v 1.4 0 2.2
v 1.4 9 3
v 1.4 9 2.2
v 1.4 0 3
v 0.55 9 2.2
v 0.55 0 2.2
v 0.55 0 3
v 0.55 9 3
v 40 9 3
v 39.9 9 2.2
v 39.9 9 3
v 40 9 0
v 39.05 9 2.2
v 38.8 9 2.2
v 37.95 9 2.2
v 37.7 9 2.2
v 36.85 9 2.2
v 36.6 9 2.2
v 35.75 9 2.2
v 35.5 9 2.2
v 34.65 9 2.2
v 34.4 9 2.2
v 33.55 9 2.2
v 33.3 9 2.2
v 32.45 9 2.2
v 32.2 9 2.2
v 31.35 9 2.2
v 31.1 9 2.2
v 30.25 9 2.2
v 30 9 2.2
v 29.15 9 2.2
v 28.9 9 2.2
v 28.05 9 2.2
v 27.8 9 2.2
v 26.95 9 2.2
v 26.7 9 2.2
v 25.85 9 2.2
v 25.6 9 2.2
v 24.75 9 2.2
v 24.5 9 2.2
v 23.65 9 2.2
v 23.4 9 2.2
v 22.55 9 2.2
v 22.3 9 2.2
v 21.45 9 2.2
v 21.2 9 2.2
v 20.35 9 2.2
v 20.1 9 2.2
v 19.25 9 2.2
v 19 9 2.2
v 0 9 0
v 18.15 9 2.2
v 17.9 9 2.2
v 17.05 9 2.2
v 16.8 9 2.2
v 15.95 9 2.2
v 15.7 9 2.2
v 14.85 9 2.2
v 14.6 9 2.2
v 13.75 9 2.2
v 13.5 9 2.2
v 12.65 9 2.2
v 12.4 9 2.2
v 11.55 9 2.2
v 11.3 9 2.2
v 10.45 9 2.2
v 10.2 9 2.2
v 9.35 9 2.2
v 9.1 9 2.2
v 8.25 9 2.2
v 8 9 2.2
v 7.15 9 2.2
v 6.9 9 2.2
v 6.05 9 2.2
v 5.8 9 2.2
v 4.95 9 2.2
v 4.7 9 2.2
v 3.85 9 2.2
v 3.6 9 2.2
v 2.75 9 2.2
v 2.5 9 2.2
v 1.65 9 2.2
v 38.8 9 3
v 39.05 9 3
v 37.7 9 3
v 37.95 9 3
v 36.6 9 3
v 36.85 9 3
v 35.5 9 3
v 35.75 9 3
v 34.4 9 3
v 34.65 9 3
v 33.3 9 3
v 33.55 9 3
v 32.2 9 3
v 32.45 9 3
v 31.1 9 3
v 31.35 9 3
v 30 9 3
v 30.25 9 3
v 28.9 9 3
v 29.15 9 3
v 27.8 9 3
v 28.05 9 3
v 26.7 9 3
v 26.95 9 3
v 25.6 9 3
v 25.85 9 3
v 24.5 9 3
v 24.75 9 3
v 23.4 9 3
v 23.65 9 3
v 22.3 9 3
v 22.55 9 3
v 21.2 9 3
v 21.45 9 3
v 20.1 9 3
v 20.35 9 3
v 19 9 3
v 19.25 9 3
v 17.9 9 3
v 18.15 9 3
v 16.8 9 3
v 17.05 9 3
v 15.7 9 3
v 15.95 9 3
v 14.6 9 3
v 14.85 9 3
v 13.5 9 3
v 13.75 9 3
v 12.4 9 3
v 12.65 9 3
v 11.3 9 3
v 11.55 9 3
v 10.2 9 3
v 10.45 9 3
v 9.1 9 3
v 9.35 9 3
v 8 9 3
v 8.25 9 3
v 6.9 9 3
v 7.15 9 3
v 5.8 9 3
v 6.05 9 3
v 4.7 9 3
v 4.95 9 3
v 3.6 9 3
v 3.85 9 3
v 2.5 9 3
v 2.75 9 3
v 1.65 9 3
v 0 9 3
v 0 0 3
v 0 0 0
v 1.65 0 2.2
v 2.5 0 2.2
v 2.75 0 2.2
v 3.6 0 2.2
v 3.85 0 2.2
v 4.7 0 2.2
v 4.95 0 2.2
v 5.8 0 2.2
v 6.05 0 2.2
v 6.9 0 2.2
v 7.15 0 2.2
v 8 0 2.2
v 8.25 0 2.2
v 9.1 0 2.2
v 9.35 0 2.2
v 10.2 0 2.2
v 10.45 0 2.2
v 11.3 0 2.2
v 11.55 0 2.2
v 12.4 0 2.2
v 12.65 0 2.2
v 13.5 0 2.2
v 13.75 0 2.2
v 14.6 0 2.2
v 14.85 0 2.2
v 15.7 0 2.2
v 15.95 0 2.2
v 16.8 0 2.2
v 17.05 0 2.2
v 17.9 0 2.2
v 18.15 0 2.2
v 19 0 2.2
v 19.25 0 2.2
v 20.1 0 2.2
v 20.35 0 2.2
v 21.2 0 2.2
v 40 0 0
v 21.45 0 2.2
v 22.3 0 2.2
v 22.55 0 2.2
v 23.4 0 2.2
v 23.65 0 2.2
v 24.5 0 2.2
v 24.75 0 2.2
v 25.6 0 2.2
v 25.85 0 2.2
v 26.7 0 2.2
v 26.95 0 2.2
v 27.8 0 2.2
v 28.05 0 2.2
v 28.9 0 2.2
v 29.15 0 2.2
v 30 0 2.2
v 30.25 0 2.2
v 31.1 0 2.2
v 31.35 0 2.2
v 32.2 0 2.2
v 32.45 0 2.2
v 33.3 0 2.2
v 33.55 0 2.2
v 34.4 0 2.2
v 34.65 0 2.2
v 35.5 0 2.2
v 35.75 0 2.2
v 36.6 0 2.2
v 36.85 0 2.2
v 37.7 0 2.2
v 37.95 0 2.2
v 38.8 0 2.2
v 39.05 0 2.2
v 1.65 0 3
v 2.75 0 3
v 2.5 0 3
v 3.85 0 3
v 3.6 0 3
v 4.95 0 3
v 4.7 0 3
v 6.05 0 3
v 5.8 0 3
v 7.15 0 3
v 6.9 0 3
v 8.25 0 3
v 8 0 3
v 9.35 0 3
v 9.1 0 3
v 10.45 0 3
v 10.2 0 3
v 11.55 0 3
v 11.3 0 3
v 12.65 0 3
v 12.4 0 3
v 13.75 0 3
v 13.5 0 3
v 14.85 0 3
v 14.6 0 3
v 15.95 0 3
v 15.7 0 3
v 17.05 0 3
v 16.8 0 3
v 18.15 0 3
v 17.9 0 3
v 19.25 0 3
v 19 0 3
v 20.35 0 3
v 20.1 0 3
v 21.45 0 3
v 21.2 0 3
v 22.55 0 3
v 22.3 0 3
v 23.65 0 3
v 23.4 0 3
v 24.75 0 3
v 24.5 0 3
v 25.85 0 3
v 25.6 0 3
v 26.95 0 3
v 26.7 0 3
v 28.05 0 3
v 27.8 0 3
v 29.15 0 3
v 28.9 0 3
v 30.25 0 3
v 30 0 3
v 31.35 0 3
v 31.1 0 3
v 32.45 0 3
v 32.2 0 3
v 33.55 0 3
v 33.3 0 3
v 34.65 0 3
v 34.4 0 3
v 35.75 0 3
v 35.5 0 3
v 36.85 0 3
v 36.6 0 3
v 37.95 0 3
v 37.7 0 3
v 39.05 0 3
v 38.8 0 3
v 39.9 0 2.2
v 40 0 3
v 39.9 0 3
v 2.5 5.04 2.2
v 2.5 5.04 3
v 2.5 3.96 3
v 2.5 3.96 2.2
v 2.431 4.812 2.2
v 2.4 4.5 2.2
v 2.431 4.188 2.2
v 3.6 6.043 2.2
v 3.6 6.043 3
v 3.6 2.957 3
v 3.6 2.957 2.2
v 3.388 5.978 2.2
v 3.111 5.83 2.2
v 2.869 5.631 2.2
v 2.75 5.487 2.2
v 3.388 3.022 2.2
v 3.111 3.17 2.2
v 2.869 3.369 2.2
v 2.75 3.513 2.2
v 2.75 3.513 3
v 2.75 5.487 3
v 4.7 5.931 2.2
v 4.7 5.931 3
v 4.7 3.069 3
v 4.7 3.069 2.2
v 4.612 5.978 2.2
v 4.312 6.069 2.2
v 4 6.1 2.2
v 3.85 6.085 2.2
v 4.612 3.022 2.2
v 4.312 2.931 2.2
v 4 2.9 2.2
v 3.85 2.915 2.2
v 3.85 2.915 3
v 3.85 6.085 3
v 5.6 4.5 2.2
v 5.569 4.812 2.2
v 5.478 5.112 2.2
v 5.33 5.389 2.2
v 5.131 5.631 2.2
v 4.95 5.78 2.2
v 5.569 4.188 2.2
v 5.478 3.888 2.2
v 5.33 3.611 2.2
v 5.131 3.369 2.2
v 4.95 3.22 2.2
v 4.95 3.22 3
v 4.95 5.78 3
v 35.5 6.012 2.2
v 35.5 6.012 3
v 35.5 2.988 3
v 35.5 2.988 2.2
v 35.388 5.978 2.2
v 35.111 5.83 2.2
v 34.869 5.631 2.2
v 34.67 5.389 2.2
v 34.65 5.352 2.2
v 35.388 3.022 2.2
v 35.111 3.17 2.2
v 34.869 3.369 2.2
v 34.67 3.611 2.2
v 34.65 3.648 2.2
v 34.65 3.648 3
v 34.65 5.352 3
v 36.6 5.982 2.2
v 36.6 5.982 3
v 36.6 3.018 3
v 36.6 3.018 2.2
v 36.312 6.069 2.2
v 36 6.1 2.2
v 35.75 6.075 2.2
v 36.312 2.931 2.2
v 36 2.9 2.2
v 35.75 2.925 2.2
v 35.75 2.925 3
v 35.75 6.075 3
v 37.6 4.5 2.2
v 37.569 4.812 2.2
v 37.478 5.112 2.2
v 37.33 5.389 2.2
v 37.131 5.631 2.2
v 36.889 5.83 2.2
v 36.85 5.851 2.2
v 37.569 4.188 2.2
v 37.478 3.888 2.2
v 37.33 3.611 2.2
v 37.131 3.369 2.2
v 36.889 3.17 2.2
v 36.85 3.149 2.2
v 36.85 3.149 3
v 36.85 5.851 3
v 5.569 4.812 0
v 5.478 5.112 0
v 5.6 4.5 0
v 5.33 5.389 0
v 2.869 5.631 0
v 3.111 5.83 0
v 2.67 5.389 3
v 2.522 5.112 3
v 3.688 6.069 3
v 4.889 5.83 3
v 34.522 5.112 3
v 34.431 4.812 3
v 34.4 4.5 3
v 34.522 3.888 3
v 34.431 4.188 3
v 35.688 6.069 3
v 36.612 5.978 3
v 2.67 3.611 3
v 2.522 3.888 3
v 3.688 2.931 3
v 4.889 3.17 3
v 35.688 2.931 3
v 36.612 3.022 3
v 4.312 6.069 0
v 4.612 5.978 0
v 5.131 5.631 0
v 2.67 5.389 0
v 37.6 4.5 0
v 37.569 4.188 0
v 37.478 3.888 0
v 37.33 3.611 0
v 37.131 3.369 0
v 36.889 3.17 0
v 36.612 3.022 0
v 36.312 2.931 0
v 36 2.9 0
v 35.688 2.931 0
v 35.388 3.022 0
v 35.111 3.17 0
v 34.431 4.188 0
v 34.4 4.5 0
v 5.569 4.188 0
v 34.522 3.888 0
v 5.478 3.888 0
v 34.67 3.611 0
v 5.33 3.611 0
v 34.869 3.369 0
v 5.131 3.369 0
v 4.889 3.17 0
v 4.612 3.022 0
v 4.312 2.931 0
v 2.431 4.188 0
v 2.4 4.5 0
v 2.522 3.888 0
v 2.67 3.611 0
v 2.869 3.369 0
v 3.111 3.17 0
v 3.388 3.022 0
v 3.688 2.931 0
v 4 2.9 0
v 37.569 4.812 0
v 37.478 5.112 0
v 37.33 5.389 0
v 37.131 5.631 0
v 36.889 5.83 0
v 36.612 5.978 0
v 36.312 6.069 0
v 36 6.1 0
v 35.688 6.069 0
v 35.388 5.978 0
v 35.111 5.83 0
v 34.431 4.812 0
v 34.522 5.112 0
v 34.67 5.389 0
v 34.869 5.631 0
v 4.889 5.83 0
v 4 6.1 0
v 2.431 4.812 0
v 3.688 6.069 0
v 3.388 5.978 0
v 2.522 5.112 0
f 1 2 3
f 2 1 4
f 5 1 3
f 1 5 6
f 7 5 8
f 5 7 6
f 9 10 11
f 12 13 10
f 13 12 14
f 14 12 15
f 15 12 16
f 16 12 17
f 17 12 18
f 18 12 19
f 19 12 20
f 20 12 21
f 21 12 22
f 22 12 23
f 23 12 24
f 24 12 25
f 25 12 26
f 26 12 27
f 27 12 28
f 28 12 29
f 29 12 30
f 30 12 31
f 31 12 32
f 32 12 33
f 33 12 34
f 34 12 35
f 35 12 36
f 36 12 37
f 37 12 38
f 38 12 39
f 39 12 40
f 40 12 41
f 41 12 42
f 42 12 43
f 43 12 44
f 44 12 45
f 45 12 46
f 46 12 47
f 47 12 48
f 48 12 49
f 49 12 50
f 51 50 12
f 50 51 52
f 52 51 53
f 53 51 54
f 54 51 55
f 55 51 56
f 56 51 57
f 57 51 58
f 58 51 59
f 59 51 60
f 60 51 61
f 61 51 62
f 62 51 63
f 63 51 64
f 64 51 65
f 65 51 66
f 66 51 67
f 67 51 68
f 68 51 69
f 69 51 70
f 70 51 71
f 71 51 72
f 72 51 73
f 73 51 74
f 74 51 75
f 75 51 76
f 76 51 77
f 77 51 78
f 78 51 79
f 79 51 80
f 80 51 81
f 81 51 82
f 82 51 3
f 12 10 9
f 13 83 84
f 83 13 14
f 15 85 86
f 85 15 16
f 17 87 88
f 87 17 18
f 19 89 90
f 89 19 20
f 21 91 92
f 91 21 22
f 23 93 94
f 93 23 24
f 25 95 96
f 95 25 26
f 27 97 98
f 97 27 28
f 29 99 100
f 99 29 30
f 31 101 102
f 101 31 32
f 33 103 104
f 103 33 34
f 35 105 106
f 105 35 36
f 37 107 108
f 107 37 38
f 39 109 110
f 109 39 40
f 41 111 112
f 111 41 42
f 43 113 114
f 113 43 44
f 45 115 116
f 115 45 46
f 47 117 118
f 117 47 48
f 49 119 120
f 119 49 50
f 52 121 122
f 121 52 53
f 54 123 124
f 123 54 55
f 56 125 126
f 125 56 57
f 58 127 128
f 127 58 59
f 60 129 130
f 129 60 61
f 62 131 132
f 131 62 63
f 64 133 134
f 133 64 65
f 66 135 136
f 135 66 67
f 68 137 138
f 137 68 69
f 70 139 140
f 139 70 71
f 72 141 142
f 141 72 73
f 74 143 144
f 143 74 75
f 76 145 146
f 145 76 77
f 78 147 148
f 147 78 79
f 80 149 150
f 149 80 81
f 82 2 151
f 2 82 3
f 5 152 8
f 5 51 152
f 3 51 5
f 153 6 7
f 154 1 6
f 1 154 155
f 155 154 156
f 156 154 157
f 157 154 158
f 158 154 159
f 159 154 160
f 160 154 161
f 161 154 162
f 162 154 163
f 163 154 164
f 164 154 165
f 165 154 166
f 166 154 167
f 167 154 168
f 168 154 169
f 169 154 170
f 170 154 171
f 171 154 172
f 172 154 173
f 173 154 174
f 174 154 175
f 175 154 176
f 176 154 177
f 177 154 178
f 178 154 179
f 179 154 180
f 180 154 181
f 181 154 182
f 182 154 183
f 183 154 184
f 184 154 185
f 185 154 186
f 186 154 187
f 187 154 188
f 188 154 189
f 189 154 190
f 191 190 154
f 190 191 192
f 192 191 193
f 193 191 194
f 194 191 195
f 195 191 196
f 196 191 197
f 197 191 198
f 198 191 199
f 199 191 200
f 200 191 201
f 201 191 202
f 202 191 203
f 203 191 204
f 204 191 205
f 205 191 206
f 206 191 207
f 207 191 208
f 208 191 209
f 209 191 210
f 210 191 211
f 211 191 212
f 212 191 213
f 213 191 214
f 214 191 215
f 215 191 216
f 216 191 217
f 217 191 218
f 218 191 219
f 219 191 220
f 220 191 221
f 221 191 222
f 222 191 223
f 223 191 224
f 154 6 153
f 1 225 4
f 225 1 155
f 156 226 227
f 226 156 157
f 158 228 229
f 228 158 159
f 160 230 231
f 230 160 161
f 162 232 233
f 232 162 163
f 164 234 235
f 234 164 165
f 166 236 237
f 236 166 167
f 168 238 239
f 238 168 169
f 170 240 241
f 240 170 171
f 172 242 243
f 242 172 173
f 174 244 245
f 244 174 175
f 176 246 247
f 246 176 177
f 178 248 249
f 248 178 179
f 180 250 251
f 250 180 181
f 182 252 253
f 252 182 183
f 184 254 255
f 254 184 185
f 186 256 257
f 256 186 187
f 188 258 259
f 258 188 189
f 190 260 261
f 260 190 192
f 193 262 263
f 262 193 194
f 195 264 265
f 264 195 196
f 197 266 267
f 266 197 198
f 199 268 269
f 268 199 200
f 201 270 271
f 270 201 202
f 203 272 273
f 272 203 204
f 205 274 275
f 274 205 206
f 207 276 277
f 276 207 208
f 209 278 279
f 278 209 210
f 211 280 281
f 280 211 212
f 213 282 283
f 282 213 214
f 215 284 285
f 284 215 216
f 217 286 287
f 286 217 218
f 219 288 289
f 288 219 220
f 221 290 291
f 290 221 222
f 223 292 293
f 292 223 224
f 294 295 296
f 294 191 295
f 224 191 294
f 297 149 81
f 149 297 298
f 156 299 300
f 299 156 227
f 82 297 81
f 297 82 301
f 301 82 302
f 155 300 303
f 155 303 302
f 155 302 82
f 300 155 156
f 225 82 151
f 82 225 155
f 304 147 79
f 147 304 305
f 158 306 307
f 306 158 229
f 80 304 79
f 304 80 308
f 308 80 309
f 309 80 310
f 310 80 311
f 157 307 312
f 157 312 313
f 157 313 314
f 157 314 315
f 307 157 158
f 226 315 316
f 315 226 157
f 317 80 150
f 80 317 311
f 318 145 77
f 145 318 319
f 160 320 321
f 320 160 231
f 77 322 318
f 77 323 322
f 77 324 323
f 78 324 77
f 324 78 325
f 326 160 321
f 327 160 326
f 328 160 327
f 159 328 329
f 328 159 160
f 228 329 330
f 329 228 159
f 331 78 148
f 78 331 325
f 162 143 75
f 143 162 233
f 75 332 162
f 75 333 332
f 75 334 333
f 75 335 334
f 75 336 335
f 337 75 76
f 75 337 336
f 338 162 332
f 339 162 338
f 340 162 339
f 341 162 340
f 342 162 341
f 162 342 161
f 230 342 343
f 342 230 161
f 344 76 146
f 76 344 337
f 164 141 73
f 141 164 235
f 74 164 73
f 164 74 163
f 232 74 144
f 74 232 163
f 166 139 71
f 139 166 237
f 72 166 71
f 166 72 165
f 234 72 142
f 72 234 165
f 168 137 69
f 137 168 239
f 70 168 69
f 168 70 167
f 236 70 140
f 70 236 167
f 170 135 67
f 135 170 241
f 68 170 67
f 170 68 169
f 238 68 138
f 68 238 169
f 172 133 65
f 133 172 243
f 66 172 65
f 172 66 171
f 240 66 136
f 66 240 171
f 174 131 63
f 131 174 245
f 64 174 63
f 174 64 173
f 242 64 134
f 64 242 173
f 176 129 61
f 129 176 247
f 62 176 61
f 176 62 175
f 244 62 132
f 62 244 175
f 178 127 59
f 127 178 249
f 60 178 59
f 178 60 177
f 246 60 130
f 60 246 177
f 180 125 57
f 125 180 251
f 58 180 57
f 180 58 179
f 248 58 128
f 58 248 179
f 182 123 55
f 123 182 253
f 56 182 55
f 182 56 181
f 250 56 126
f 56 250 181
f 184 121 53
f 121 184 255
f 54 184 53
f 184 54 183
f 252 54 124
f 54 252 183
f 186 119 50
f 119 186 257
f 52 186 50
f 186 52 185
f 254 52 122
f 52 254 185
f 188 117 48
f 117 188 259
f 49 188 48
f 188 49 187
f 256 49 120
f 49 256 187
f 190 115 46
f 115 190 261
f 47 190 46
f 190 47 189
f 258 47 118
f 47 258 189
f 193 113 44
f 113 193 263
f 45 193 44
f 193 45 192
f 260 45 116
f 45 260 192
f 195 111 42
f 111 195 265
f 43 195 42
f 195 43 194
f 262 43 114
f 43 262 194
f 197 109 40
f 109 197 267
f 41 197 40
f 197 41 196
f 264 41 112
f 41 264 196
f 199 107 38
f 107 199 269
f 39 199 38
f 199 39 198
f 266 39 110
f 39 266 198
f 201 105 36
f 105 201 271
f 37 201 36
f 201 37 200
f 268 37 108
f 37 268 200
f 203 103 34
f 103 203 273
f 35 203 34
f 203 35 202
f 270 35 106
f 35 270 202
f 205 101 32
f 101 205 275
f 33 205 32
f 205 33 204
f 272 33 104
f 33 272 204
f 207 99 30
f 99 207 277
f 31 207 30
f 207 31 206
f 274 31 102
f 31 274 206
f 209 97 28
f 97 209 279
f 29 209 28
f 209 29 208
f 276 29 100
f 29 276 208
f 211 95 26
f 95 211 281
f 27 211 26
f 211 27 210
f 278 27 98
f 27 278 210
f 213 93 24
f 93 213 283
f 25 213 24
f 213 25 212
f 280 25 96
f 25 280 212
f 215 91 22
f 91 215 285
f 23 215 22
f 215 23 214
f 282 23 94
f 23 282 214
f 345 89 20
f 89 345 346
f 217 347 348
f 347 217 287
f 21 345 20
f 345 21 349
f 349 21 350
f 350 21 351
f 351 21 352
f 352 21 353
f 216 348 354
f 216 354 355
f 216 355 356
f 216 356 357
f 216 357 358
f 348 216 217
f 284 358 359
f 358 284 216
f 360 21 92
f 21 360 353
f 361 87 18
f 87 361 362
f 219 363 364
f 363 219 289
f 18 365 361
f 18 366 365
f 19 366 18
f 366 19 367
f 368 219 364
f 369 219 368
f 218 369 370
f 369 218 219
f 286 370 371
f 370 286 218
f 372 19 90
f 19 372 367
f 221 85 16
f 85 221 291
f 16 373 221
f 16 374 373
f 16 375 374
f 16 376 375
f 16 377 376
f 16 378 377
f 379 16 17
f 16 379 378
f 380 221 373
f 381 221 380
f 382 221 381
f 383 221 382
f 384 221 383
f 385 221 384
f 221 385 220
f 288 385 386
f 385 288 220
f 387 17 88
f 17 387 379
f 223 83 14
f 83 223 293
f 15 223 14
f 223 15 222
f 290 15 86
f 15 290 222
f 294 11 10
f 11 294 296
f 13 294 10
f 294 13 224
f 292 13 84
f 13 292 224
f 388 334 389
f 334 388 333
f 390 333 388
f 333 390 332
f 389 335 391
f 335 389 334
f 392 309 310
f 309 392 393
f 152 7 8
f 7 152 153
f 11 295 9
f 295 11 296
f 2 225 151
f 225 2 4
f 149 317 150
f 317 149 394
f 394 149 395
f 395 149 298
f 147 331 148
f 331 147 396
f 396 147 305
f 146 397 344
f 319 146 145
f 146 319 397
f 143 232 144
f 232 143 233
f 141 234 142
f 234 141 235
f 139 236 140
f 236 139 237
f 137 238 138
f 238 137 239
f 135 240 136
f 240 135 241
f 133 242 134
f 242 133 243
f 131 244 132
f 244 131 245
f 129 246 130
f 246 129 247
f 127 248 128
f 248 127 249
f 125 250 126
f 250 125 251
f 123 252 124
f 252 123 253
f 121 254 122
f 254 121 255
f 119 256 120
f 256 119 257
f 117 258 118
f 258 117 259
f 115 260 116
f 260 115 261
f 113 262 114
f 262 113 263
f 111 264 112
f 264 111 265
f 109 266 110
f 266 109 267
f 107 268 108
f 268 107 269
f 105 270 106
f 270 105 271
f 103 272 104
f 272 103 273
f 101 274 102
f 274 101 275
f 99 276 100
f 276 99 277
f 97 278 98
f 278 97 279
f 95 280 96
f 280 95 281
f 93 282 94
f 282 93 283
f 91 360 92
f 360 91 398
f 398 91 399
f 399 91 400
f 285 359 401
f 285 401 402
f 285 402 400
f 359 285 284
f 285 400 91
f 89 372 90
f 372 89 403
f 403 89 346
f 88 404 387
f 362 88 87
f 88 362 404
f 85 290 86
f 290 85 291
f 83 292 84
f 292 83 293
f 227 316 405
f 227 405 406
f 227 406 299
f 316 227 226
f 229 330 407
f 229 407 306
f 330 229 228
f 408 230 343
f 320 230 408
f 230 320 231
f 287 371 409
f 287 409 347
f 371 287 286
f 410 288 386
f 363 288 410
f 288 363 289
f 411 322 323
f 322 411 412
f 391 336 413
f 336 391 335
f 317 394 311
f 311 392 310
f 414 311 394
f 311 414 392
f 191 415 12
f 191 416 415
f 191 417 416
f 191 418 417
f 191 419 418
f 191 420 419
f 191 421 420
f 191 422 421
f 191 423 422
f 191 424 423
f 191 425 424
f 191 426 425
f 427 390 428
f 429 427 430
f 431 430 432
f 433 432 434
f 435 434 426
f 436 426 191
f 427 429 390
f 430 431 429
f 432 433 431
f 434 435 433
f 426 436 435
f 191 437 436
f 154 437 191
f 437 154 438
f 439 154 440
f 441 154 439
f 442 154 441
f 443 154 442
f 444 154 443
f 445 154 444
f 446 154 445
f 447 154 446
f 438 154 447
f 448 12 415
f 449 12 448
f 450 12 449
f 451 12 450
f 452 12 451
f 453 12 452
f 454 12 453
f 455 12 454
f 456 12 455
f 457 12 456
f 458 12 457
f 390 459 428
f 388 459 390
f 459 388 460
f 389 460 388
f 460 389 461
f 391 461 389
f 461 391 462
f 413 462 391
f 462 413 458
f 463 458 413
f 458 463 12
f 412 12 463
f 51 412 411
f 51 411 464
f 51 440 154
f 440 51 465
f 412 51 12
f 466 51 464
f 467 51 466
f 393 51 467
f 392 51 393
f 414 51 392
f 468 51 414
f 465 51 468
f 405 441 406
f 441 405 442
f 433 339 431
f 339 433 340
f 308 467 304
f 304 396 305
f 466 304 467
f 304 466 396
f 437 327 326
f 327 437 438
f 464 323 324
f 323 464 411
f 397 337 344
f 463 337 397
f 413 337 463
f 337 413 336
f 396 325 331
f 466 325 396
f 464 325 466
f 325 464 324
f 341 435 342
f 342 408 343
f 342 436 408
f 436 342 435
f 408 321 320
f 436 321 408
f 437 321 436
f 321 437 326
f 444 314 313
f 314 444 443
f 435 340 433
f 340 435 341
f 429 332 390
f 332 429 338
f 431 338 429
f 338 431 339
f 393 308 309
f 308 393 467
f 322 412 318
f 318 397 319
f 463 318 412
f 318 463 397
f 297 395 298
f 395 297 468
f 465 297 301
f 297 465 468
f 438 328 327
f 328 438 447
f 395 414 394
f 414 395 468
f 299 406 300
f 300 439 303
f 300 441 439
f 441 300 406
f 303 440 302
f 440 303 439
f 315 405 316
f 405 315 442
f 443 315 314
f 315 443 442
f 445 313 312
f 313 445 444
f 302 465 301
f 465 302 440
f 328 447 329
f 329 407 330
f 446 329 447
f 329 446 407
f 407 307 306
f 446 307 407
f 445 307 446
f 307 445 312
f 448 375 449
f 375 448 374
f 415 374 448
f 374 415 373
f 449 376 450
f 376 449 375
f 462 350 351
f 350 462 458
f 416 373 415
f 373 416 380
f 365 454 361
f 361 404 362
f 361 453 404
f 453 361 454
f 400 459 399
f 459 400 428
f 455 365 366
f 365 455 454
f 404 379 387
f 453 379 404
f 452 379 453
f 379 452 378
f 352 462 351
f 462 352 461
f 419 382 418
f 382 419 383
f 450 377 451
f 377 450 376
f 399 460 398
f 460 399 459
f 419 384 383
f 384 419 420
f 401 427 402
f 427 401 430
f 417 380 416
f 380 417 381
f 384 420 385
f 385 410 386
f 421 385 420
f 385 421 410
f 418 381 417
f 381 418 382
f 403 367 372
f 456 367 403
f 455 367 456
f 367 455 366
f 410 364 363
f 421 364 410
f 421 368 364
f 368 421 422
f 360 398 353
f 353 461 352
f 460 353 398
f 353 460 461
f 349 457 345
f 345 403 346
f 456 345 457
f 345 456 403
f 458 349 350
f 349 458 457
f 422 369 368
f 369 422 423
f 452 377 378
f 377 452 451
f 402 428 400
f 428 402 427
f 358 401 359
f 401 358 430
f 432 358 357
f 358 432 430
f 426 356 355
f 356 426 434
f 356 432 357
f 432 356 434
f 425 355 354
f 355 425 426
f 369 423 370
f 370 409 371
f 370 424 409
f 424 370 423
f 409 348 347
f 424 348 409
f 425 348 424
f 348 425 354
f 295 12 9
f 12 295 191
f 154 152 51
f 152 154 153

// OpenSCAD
// GT2 Belt Clamp Parameters
clamp_width = 9;    // Width of the clamp
clamp_length = 40;  // Length of the clamp
clamp_height = 3;   // Height/thickness of the clamp

// GT2 Belt tooth parameters
tooth_spacing = 1.1;  // Space between teeth
tooth_width = 0.85;   // Width of each tooth
tooth_depth = 0.9;    // Depth of the teeth
num_teeth = floor(clamp_length / tooth_spacing);  // Calculate number of teeth

// Screw hole parameters
hole_diameter = 3.2;  // M3 screw holes
hole_distance = 32;   // Distance between screw holes
hole_margin = (clamp_length - hole_distance) / 2;

module gt2_belt_clamp() {
  difference() {
    // Main body
    cube([clamp_length, clamp_width, clamp_height]);

    // Create teeth pattern
    translate([tooth_spacing/2, 0, (clamp_height - tooth_depth) + 0.1 ])
    for(i = [0:num_teeth-1]) {
      translate([i * tooth_spacing, 0, 0])
      cube([tooth_width, clamp_width, tooth_depth]);
    }

    // Screw holes
    translate([hole_margin, clamp_width/2, 0]) {
      cylinder(h=clamp_height, d=hole_diameter, $fn=32);
      translate([hole_distance, 0, 0])
      cylinder(h=clamp_height, d=hole_diameter, $fn=32);
    }
  }
}

// Render the clamp
gt2_belt_clamp();
